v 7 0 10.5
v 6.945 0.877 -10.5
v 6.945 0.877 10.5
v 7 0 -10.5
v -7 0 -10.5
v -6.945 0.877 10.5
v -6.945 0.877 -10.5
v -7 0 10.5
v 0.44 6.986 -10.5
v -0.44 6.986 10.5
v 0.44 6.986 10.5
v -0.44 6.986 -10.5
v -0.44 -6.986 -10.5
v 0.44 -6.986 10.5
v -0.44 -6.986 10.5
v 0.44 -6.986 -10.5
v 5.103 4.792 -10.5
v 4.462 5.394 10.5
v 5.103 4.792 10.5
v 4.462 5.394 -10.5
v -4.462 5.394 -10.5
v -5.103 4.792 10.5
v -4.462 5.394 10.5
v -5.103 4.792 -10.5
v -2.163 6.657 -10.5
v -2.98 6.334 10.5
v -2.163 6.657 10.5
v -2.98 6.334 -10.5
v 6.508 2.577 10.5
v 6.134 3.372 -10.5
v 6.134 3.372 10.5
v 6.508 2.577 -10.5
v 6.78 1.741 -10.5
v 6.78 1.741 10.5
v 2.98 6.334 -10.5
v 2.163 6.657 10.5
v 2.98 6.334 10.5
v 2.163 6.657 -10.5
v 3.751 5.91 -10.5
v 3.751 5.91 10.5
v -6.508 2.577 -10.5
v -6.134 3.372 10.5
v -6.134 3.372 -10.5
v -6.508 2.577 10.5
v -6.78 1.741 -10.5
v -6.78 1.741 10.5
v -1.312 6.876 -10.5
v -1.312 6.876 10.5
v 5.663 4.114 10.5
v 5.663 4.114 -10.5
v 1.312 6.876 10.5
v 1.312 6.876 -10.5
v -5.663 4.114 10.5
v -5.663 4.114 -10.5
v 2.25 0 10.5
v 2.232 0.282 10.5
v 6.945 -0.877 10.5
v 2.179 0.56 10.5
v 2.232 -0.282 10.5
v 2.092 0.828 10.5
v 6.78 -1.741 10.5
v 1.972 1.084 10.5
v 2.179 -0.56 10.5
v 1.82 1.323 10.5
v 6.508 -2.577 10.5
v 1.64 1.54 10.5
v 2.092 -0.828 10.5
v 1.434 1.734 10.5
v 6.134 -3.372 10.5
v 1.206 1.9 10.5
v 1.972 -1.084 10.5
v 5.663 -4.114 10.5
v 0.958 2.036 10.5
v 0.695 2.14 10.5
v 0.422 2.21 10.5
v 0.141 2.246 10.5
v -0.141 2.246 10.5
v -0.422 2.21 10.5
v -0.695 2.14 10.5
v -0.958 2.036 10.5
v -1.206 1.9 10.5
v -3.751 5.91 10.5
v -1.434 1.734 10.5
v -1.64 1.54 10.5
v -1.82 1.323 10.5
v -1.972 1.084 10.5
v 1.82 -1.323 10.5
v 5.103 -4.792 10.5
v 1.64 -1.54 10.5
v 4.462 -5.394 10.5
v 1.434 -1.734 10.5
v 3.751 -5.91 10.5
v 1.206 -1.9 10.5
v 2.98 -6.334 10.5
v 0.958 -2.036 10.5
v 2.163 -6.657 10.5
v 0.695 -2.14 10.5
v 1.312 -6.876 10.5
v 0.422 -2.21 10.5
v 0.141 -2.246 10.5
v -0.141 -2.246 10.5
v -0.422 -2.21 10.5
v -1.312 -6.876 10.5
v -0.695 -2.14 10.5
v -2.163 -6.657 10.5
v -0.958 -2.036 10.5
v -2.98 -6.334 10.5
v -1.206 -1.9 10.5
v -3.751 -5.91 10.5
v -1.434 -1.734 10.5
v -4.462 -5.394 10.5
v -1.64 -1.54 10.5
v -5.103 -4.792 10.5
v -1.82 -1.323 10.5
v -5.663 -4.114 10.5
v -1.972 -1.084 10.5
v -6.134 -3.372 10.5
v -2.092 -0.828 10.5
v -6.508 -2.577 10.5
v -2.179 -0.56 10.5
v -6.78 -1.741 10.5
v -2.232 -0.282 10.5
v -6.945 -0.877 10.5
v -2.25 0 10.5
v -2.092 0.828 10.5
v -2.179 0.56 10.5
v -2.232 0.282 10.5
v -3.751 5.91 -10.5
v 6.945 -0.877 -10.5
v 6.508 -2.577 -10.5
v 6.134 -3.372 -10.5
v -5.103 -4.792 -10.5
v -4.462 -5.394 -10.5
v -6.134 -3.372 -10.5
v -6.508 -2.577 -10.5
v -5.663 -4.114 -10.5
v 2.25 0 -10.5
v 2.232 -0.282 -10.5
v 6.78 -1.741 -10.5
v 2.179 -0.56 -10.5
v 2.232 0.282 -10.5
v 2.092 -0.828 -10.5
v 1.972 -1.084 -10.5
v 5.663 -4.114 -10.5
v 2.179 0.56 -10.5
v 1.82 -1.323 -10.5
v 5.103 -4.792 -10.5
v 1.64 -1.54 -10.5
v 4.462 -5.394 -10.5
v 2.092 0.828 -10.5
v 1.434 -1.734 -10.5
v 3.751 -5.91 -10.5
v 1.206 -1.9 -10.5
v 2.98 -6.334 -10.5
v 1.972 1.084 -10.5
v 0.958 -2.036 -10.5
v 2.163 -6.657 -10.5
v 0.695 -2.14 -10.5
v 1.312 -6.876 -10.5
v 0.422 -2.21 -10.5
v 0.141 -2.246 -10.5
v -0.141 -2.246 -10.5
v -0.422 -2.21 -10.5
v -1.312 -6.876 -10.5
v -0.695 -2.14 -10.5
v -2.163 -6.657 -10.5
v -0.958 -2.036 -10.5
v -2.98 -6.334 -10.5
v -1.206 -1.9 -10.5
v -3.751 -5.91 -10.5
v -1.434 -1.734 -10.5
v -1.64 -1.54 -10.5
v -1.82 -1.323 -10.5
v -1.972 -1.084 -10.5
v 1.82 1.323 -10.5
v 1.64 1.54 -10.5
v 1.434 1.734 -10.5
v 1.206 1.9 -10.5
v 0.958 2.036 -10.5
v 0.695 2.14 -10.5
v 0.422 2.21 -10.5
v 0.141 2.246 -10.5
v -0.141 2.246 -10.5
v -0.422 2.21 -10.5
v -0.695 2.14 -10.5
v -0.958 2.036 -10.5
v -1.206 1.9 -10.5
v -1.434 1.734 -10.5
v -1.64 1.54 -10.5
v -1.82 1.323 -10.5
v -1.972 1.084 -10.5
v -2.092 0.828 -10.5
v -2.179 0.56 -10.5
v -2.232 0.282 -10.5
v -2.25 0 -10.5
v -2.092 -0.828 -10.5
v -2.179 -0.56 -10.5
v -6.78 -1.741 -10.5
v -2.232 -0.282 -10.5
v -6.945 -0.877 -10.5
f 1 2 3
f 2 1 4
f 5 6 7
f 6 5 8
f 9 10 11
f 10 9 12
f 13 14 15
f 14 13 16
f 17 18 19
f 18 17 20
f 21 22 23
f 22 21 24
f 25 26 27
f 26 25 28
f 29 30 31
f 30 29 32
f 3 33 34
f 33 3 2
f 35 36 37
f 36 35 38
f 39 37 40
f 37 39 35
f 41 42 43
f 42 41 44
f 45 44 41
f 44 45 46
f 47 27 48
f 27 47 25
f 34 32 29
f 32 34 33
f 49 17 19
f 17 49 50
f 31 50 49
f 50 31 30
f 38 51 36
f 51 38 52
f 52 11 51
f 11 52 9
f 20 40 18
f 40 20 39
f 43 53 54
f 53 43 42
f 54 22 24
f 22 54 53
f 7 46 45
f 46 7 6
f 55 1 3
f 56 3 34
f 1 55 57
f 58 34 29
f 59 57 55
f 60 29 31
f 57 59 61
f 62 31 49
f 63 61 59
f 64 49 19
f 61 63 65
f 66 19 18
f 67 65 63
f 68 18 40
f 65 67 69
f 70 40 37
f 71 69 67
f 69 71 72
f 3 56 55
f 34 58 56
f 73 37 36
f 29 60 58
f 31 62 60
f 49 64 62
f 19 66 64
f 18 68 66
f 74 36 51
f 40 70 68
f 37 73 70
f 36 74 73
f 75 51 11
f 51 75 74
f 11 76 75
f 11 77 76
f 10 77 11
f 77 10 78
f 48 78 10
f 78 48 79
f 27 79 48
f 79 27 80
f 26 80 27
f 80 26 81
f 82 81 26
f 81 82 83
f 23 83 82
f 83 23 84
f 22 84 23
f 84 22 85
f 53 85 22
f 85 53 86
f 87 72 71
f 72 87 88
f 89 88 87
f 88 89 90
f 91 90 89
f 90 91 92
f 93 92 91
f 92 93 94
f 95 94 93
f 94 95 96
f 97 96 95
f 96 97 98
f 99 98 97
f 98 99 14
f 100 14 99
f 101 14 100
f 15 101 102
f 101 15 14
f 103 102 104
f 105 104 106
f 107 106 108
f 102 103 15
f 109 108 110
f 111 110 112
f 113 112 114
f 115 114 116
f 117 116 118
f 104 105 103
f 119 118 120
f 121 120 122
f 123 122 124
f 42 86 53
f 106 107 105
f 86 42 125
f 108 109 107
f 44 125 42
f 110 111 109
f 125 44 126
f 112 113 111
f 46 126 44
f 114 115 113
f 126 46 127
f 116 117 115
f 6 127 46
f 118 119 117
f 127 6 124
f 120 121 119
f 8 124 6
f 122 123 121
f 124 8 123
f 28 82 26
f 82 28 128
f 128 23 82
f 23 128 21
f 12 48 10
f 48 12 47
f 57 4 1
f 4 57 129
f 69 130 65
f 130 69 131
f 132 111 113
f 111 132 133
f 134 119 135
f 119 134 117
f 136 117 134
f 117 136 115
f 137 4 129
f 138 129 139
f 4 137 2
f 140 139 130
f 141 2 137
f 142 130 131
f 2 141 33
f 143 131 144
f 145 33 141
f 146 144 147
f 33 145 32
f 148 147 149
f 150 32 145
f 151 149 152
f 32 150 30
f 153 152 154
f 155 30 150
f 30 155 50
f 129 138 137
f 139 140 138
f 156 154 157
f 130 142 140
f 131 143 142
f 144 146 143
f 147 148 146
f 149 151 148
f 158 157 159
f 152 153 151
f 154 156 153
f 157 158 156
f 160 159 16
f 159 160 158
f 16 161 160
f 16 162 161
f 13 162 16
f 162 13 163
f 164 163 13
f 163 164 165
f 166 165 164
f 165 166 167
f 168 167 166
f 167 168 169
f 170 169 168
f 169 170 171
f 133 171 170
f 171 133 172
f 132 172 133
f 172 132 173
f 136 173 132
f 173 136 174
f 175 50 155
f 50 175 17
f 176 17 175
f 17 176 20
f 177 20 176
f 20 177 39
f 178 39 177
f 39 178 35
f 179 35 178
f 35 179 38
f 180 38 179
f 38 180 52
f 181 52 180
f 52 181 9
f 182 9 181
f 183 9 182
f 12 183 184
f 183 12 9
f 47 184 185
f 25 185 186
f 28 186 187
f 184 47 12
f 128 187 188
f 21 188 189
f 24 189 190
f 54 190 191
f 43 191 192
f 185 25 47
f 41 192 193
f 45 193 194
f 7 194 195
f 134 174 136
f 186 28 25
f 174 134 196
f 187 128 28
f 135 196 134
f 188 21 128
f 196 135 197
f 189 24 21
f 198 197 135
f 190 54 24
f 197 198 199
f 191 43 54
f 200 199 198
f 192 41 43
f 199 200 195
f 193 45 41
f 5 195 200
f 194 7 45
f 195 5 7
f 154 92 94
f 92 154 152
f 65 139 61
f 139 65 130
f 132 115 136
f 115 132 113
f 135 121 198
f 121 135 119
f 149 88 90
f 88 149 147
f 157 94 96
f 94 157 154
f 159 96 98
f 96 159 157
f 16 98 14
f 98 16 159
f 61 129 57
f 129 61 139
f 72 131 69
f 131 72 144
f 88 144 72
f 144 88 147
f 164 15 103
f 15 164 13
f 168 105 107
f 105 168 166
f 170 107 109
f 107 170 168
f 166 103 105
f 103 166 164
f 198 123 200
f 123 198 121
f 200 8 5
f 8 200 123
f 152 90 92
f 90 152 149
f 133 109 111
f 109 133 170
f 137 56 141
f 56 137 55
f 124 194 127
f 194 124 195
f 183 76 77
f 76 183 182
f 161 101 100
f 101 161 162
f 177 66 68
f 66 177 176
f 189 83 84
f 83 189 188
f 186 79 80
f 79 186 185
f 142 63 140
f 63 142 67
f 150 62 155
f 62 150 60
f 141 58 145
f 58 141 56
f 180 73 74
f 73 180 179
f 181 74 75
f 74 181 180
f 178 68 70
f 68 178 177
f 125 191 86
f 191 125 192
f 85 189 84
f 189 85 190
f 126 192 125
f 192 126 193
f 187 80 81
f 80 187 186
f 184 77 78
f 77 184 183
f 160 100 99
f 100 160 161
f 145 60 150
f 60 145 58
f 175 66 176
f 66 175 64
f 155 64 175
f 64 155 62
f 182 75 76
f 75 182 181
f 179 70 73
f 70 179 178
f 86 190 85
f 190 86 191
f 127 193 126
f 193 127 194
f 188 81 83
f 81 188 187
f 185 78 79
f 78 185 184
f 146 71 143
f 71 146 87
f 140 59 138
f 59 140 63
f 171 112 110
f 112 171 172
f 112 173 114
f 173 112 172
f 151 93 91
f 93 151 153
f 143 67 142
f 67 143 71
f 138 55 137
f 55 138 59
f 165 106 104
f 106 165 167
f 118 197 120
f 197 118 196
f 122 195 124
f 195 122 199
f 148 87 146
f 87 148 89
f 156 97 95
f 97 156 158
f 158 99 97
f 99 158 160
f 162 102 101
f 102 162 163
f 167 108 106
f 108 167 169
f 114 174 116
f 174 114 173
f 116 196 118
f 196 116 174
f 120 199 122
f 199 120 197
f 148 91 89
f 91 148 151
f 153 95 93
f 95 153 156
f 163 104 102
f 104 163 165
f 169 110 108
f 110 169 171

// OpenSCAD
$fn = 50;


difference() {
	union() {
		translate(v = [0, 0, -10.5000000000]) {
			cylinder(h = 21, r = 7.0000000000);
		}
	}
	union() {
		translate(v = [0, 0, -100.0000000000]) {
			cylinder(h = 200, r = 2.2500000000);
		}
	}
}
